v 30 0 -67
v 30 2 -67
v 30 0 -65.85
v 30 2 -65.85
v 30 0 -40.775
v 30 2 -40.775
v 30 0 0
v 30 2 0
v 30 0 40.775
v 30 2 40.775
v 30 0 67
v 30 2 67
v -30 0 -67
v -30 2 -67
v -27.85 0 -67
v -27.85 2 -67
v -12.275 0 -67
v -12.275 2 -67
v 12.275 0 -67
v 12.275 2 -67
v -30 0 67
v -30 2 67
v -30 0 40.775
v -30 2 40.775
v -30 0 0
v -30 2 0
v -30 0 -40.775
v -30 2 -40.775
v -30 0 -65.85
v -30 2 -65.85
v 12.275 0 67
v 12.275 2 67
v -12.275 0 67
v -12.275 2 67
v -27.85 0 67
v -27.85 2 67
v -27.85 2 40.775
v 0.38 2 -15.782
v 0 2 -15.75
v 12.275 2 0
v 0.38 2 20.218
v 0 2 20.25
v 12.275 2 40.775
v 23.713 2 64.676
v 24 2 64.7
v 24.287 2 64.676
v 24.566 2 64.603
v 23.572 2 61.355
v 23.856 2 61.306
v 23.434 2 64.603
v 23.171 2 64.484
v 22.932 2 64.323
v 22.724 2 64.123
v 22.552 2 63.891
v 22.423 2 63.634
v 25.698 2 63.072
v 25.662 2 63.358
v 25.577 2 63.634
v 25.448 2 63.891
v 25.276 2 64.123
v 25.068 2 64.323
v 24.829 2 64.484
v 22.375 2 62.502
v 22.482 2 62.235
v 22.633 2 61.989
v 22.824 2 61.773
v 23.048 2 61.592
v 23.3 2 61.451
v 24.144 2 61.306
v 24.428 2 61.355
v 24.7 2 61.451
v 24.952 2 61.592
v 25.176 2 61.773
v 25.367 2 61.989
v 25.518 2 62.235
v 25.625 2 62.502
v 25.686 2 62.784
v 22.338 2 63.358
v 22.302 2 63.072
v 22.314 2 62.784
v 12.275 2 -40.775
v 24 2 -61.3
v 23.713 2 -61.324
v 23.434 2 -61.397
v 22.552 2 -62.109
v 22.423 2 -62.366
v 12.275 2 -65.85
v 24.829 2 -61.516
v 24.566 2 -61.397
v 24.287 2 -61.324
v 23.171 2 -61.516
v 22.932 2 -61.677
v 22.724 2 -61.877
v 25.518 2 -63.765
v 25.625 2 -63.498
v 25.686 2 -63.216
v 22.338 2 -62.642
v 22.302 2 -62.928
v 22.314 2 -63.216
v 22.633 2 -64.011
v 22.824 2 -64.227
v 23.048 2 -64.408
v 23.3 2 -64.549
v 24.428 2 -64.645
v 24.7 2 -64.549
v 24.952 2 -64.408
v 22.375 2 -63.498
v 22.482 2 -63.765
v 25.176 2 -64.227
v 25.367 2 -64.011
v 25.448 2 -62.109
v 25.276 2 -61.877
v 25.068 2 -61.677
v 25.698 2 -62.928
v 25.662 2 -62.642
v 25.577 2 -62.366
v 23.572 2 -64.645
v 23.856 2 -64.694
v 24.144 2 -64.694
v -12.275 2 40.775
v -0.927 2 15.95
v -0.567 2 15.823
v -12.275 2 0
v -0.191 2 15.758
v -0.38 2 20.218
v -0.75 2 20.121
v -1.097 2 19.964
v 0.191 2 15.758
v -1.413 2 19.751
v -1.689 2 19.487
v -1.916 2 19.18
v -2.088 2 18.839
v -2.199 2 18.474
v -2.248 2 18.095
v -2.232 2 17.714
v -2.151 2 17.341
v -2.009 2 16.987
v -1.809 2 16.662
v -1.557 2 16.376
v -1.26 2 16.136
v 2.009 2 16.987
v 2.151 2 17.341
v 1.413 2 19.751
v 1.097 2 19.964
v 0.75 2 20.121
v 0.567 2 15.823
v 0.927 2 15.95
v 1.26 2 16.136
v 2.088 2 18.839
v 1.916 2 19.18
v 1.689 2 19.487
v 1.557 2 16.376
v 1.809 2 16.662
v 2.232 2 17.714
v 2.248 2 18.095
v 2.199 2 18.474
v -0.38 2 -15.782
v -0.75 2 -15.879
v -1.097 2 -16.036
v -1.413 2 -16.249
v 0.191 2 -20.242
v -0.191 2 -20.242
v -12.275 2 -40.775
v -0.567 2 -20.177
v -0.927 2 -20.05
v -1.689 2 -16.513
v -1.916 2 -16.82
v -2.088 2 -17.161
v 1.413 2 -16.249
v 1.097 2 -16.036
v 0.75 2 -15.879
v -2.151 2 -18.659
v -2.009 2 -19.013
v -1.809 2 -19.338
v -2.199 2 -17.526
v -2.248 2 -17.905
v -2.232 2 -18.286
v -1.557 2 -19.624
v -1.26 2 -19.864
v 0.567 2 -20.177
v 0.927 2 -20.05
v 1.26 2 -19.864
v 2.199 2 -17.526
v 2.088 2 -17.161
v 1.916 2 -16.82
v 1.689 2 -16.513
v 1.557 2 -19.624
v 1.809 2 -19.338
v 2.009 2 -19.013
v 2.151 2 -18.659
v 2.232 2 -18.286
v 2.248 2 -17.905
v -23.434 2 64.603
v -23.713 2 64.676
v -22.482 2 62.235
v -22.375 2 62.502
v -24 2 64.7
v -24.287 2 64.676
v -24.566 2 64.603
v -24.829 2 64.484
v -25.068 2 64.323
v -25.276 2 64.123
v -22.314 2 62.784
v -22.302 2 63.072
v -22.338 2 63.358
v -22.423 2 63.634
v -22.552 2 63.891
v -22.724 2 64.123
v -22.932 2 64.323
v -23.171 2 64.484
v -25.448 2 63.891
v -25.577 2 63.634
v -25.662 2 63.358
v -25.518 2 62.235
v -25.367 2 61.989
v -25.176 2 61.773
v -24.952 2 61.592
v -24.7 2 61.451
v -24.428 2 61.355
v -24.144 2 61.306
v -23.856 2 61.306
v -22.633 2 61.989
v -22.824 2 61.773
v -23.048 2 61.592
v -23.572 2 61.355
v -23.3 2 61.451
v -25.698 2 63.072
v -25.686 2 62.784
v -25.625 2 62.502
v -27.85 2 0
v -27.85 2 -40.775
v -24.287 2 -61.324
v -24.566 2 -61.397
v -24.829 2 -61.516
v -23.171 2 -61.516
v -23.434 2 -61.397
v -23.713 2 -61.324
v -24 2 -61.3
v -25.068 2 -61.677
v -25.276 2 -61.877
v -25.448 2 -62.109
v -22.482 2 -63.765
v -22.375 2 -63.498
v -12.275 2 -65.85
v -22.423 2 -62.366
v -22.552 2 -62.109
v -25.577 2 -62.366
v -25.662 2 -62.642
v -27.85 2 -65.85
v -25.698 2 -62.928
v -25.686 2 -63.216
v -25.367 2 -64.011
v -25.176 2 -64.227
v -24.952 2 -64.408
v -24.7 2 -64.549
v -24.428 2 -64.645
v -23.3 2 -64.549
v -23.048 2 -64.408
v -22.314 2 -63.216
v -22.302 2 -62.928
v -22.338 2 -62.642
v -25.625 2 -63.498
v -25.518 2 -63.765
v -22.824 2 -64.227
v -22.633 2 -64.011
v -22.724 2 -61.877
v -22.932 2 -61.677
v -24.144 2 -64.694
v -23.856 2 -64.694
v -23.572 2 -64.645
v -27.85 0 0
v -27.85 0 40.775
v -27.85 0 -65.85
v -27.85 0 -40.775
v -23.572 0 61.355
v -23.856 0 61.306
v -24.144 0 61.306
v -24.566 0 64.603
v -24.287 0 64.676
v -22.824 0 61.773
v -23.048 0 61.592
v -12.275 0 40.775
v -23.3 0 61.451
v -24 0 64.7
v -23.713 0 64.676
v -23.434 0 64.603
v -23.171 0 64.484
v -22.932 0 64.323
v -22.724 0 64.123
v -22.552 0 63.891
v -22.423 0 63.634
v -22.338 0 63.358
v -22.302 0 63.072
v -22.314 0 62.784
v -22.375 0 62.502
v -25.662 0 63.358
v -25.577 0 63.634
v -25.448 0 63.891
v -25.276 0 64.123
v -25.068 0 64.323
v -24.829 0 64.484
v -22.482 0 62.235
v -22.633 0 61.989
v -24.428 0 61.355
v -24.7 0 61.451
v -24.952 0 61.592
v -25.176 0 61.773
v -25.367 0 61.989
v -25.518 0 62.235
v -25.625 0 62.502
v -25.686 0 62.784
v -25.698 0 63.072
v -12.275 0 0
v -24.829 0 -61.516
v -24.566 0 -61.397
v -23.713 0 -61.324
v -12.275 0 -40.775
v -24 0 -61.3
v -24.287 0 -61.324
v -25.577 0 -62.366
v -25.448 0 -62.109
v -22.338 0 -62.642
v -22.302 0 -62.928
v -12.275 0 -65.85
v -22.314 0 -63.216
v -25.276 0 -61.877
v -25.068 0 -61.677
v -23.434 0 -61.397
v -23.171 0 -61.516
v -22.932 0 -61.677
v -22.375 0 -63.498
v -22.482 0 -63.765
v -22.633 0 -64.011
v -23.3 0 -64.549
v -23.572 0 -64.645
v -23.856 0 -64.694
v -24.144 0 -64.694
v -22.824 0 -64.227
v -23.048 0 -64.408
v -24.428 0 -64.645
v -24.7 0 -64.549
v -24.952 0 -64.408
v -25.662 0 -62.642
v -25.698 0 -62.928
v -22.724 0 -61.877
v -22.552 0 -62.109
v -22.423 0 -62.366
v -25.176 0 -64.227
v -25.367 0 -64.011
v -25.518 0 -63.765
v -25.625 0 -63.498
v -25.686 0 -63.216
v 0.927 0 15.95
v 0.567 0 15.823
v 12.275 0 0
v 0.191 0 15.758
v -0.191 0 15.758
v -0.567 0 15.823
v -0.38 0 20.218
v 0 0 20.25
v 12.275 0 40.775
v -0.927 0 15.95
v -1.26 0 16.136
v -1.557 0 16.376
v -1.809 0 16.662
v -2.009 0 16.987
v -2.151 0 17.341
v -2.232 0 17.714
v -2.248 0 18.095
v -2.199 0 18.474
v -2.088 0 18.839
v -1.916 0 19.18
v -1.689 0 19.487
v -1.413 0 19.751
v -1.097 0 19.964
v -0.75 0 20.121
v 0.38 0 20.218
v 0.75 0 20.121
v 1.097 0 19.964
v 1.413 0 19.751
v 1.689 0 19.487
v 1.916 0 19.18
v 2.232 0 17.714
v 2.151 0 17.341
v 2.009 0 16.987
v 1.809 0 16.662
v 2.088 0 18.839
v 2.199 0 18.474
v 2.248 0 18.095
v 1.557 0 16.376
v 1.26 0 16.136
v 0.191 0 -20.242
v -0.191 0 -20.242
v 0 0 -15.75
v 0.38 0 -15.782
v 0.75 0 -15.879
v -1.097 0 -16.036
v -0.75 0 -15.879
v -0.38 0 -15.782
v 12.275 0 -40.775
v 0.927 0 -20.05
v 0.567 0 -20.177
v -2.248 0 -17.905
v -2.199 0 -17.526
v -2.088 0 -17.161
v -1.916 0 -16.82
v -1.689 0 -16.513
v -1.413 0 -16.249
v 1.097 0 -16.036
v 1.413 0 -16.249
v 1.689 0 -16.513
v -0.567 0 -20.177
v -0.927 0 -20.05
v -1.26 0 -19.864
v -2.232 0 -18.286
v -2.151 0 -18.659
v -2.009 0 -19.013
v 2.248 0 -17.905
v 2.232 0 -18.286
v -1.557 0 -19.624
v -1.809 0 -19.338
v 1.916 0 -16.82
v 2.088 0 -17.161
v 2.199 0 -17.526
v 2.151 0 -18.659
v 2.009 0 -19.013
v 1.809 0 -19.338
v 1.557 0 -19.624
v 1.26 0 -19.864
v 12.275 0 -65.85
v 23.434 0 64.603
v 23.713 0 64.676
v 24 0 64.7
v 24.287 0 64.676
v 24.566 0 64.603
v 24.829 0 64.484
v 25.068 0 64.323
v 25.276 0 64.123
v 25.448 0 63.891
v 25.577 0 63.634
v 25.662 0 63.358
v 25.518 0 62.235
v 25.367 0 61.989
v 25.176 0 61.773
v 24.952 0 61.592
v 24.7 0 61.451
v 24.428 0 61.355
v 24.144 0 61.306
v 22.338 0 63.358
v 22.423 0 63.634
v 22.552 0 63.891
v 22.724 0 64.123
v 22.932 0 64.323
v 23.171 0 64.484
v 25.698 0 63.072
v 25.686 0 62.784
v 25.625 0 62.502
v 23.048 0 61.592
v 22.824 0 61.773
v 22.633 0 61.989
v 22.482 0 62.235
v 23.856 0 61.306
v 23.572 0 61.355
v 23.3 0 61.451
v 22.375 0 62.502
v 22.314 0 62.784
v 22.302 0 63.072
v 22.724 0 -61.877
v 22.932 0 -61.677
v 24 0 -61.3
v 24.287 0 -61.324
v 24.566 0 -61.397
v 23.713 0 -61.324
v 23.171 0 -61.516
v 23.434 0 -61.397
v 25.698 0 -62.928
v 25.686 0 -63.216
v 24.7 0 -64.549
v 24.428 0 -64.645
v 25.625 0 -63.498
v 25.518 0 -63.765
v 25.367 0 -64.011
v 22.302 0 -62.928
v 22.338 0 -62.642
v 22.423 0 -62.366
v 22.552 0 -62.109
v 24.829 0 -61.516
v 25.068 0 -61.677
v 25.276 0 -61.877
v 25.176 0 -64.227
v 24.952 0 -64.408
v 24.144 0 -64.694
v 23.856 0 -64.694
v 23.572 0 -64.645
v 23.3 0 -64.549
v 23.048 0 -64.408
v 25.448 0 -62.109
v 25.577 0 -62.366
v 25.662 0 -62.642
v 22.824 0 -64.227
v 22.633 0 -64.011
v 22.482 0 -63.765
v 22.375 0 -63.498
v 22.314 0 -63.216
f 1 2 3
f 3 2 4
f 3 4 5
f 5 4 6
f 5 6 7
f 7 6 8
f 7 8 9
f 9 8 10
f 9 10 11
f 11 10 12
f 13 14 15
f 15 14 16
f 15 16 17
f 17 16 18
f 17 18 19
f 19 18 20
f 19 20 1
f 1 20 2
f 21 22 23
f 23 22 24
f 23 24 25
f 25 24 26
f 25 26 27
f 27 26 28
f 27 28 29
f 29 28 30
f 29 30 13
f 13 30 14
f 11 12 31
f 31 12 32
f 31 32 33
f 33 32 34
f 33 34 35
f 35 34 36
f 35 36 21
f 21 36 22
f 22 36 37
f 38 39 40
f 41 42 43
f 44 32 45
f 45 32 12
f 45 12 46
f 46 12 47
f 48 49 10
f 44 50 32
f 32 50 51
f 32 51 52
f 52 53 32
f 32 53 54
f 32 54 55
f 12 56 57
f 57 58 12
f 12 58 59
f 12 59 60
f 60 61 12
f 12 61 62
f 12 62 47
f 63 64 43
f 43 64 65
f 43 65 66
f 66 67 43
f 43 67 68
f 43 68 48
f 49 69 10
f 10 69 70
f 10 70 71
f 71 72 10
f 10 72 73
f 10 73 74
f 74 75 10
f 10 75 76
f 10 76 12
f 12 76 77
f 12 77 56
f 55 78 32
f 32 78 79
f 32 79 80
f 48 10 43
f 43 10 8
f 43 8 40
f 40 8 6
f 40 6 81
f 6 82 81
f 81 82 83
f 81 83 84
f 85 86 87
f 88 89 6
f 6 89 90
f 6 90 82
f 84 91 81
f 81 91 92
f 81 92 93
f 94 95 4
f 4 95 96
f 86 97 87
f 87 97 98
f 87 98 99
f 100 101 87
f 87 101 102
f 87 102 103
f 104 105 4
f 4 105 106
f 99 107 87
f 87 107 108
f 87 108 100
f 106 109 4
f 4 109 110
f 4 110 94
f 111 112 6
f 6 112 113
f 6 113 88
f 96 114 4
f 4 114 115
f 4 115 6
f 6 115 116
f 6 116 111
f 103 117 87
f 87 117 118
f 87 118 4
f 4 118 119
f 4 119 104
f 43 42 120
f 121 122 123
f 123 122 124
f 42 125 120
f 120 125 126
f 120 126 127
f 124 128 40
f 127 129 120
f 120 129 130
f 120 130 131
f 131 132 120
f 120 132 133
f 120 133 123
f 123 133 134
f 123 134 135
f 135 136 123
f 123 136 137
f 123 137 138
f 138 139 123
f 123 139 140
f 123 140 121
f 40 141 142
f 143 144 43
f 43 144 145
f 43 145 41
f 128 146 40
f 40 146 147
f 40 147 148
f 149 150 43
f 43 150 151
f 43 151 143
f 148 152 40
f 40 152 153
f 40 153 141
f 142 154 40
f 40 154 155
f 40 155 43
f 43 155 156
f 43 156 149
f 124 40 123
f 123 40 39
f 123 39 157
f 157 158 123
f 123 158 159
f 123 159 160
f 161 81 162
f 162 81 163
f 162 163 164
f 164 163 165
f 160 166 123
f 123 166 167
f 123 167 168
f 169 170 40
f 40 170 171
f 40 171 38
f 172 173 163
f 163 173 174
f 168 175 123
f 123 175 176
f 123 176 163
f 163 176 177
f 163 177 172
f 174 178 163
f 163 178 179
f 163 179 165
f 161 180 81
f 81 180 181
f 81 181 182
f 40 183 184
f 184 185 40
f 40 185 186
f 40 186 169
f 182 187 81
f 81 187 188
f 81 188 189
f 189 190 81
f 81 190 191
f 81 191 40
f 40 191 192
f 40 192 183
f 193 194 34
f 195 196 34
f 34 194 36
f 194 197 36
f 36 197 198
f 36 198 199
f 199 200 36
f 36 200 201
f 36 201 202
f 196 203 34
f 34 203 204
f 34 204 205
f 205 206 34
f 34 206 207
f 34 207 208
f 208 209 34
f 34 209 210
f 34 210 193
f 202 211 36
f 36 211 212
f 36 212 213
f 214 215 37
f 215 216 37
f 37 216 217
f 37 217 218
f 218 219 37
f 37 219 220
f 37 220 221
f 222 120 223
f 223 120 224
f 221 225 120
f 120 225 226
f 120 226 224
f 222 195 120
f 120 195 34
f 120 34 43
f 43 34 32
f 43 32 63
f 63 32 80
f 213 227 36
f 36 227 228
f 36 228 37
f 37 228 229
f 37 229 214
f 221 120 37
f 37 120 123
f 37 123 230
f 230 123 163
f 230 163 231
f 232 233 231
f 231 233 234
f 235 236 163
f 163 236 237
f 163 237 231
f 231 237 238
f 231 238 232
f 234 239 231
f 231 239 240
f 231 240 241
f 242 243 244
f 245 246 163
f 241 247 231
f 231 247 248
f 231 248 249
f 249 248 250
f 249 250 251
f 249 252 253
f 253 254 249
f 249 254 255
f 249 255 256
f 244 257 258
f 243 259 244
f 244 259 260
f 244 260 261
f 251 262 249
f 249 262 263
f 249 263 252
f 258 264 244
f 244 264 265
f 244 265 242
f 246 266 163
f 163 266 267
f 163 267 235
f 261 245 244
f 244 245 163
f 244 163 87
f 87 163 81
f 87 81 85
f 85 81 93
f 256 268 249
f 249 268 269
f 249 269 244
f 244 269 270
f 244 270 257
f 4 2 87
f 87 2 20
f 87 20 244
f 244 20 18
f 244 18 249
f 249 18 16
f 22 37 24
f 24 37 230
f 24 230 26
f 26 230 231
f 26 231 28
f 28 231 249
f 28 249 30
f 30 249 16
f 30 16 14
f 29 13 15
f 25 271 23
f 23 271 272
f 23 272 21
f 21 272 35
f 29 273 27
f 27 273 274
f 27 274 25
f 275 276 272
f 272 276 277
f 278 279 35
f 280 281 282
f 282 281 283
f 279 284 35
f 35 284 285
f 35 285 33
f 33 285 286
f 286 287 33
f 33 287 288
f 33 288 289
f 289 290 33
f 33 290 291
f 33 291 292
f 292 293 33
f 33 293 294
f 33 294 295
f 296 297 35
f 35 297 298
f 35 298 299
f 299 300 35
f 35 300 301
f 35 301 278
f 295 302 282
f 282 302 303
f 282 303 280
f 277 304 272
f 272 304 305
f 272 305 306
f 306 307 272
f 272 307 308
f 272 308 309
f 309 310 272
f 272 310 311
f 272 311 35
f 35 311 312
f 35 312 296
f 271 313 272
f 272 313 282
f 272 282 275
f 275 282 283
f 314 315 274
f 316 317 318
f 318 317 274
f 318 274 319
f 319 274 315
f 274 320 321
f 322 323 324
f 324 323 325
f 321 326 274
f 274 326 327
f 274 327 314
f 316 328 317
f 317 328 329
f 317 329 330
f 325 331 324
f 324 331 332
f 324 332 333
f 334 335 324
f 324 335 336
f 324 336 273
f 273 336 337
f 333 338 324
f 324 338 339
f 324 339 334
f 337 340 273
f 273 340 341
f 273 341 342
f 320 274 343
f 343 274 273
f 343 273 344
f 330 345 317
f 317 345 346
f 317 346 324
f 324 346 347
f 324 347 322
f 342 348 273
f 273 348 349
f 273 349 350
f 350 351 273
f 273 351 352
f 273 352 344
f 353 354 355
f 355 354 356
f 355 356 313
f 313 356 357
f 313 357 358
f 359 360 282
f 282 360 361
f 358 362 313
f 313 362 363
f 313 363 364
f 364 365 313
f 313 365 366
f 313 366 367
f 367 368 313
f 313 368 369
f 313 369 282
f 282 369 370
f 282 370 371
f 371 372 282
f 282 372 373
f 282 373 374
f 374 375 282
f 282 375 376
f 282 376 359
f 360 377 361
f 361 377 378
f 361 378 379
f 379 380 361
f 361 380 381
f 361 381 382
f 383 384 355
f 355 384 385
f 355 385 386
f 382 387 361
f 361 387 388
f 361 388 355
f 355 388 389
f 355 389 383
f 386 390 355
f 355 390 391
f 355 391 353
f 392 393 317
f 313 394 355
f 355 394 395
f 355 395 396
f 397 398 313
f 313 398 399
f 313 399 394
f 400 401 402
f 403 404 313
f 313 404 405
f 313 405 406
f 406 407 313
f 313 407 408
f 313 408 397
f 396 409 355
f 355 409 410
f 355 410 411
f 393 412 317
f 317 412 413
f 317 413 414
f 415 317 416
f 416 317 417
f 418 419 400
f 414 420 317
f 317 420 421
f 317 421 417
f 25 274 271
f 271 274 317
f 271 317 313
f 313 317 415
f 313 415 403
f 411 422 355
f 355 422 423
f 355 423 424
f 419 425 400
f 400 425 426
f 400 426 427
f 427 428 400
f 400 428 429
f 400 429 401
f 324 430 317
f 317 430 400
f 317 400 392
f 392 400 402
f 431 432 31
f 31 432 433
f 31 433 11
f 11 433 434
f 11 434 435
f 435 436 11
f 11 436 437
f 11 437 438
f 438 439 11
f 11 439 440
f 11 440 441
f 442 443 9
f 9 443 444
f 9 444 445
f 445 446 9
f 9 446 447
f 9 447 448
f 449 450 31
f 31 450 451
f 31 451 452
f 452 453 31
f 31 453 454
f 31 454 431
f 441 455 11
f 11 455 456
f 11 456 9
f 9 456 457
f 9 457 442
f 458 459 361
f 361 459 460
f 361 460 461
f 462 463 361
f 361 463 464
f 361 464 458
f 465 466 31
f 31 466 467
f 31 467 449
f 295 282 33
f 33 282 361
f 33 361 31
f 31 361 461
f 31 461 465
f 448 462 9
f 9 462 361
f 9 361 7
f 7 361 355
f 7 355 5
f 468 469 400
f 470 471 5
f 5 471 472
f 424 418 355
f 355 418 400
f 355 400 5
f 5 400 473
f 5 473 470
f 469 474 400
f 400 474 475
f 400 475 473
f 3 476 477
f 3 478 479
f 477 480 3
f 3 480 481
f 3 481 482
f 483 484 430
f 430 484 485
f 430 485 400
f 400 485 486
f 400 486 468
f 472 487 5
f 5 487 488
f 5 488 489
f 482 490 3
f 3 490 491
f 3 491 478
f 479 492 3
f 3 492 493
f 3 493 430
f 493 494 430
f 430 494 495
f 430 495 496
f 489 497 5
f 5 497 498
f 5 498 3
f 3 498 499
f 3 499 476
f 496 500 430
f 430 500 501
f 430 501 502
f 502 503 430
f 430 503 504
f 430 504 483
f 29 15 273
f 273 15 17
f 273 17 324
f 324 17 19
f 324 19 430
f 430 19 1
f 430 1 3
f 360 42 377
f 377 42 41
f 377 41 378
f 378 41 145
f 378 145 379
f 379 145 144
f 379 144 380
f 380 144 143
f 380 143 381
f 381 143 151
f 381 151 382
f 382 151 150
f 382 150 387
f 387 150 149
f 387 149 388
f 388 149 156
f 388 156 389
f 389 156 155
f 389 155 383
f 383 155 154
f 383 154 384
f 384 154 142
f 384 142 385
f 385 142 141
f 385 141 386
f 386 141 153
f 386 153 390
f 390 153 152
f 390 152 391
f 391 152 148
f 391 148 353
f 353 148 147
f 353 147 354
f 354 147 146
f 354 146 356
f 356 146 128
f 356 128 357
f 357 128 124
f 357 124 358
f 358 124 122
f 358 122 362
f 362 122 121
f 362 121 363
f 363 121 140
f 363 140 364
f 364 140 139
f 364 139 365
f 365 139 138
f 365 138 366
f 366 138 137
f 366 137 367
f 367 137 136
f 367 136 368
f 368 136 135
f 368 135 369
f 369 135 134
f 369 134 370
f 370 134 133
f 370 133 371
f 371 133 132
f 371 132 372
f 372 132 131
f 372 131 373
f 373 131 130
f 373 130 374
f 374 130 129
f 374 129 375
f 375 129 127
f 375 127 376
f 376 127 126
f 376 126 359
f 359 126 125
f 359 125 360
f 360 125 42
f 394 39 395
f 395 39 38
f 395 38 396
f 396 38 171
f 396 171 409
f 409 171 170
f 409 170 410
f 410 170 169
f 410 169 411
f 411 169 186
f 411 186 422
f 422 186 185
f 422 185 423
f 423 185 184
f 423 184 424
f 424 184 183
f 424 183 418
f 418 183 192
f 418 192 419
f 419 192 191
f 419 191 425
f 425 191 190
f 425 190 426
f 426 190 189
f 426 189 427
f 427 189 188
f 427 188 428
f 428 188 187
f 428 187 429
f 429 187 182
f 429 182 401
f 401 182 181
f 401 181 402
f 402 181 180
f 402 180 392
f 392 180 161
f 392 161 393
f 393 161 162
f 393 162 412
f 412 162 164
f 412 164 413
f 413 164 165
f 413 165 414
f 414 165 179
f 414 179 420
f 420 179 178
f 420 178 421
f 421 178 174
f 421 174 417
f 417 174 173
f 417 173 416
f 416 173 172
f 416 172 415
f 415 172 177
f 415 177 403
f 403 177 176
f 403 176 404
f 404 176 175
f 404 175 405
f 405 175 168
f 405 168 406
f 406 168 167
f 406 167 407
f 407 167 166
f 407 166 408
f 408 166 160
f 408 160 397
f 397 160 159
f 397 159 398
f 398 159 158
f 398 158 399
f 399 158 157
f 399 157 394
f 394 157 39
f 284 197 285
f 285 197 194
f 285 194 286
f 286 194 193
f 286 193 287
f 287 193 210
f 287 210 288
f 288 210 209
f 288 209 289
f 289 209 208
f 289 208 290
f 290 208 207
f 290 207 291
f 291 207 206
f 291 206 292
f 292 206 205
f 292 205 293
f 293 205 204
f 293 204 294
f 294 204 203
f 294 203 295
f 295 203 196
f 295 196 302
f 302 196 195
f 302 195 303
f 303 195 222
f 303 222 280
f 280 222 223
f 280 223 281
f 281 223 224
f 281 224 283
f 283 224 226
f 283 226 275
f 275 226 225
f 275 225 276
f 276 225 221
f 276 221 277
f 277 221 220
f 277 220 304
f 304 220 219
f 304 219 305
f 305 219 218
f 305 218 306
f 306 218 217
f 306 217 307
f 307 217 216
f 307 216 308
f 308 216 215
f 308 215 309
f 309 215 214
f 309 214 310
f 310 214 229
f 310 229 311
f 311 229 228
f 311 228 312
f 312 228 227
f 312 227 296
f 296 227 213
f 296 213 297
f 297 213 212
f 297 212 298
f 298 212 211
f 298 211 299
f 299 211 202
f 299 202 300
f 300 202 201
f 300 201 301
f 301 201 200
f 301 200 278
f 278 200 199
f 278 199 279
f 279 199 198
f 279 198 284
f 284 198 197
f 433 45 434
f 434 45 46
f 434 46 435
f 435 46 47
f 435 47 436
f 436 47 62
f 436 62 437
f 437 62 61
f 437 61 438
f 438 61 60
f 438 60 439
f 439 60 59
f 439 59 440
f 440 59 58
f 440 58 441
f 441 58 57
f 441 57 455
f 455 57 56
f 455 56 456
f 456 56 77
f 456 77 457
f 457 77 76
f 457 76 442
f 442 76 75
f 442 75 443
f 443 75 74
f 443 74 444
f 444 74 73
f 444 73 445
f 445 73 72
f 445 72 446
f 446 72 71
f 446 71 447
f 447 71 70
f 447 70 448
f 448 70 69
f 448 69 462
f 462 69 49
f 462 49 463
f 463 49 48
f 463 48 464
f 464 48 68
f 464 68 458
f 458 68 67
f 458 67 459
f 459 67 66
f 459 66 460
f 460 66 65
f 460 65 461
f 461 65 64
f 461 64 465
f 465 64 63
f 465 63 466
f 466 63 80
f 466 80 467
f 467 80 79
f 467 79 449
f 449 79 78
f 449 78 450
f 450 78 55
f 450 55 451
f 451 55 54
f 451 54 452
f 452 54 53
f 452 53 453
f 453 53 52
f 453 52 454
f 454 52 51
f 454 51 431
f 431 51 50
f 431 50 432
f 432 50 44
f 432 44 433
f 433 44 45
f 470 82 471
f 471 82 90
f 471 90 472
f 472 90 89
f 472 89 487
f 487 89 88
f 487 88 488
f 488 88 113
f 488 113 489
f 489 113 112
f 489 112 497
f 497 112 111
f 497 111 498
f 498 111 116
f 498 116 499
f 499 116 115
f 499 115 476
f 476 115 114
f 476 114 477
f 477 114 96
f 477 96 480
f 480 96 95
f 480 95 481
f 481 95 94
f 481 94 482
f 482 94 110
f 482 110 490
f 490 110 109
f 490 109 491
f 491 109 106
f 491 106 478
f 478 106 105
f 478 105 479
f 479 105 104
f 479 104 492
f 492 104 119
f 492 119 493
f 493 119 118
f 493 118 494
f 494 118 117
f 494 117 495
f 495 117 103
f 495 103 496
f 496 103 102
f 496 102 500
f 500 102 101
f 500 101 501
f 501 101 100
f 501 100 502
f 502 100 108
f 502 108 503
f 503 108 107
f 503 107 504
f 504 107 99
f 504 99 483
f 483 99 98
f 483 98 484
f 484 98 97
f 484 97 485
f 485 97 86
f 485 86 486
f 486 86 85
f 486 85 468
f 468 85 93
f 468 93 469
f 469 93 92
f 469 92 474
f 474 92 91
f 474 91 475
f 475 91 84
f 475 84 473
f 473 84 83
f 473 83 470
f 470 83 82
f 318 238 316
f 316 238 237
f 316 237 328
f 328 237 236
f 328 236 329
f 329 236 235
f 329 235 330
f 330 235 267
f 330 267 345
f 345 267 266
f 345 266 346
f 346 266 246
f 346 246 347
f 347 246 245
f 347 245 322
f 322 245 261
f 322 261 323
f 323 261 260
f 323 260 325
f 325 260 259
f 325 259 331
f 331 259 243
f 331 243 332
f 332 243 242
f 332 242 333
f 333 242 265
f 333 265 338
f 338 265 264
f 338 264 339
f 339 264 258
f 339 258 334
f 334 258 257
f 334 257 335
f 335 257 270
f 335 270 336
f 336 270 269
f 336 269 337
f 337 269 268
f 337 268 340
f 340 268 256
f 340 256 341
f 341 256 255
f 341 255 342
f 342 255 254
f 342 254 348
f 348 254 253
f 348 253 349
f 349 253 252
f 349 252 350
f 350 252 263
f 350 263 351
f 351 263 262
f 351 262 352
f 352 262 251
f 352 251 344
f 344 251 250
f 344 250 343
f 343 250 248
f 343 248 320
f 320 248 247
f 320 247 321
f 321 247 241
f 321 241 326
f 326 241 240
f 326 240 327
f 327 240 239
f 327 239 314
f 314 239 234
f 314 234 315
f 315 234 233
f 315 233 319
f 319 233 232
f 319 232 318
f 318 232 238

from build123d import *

# Parameters (mm, degrees)
SKETCH1_W                = 60
SKETCH1_H                = 134
BOSS_EXTRUDE1_DEPTH      = 2
M4_CLEARANCE_HOLE1_D     = 4.5
M4_CLEARANCE_HOLE1_DEPTH = 17.38
M4_CLEARANCE_HOLE1_TIP   = 1.351936393
M3_CLEARANCE_HOLE1_D     = 3.4
M3_CLEARANCE_HOLE1_DEPTH = 17.38
M3_CLEARANCE_HOLE1_TIP   = 1.021463052


with BuildPart() as part:
    # Sketch1 → Boss-Extrude1 (new body)
    with BuildSketch(Plane(origin=(0, 0, 0), x_dir=(1, 0, 0), z_dir=(0, 1, 0))):
        Rectangle(SKETCH1_W, SKETCH1_H)
    extrude(amount=BOSS_EXTRUDE1_DEPTH)

    # M4 Clearance Hole1
    with Locations(Plane(origin=(182.343359314, 2, 33.553549243), x_dir=(1, 0, 0), z_dir=(0, 1, 0))):
        with Locations((-182.343359314, 51.553549243), (-182.343359314, 15.553549243)):
            Hole(M4_CLEARANCE_HOLE1_D / 2, depth=M4_CLEARANCE_HOLE1_DEPTH)
            with Locations((0, 0, -(M4_CLEARANCE_HOLE1_DEPTH + M4_CLEARANCE_HOLE1_TIP / 2))):  # 118° drill point
                Cone(0, M4_CLEARANCE_HOLE1_D / 2, M4_CLEARANCE_HOLE1_TIP, mode=Mode.SUBTRACT)

    # M3 Clearance Hole1
    with Locations(Plane(origin=(182.343359314, 2, 33.553549243), x_dir=(1, 0, 0), z_dir=(0, 1, 0))):
        with Locations((-206.343359314, 96.553549243), (-158.343359314, 96.553549243), (-158.343359314, -29.446450757), (-206.343359314, -29.446450757)):
            Hole(M3_CLEARANCE_HOLE1_D / 2, depth=M3_CLEARANCE_HOLE1_DEPTH)
            with Locations((0, 0, -(M3_CLEARANCE_HOLE1_DEPTH + M3_CLEARANCE_HOLE1_TIP / 2))):  # 118° drill point
                Cone(0, M3_CLEARANCE_HOLE1_D / 2, M3_CLEARANCE_HOLE1_TIP, mode=Mode.SUBTRACT)


solid = part.part
